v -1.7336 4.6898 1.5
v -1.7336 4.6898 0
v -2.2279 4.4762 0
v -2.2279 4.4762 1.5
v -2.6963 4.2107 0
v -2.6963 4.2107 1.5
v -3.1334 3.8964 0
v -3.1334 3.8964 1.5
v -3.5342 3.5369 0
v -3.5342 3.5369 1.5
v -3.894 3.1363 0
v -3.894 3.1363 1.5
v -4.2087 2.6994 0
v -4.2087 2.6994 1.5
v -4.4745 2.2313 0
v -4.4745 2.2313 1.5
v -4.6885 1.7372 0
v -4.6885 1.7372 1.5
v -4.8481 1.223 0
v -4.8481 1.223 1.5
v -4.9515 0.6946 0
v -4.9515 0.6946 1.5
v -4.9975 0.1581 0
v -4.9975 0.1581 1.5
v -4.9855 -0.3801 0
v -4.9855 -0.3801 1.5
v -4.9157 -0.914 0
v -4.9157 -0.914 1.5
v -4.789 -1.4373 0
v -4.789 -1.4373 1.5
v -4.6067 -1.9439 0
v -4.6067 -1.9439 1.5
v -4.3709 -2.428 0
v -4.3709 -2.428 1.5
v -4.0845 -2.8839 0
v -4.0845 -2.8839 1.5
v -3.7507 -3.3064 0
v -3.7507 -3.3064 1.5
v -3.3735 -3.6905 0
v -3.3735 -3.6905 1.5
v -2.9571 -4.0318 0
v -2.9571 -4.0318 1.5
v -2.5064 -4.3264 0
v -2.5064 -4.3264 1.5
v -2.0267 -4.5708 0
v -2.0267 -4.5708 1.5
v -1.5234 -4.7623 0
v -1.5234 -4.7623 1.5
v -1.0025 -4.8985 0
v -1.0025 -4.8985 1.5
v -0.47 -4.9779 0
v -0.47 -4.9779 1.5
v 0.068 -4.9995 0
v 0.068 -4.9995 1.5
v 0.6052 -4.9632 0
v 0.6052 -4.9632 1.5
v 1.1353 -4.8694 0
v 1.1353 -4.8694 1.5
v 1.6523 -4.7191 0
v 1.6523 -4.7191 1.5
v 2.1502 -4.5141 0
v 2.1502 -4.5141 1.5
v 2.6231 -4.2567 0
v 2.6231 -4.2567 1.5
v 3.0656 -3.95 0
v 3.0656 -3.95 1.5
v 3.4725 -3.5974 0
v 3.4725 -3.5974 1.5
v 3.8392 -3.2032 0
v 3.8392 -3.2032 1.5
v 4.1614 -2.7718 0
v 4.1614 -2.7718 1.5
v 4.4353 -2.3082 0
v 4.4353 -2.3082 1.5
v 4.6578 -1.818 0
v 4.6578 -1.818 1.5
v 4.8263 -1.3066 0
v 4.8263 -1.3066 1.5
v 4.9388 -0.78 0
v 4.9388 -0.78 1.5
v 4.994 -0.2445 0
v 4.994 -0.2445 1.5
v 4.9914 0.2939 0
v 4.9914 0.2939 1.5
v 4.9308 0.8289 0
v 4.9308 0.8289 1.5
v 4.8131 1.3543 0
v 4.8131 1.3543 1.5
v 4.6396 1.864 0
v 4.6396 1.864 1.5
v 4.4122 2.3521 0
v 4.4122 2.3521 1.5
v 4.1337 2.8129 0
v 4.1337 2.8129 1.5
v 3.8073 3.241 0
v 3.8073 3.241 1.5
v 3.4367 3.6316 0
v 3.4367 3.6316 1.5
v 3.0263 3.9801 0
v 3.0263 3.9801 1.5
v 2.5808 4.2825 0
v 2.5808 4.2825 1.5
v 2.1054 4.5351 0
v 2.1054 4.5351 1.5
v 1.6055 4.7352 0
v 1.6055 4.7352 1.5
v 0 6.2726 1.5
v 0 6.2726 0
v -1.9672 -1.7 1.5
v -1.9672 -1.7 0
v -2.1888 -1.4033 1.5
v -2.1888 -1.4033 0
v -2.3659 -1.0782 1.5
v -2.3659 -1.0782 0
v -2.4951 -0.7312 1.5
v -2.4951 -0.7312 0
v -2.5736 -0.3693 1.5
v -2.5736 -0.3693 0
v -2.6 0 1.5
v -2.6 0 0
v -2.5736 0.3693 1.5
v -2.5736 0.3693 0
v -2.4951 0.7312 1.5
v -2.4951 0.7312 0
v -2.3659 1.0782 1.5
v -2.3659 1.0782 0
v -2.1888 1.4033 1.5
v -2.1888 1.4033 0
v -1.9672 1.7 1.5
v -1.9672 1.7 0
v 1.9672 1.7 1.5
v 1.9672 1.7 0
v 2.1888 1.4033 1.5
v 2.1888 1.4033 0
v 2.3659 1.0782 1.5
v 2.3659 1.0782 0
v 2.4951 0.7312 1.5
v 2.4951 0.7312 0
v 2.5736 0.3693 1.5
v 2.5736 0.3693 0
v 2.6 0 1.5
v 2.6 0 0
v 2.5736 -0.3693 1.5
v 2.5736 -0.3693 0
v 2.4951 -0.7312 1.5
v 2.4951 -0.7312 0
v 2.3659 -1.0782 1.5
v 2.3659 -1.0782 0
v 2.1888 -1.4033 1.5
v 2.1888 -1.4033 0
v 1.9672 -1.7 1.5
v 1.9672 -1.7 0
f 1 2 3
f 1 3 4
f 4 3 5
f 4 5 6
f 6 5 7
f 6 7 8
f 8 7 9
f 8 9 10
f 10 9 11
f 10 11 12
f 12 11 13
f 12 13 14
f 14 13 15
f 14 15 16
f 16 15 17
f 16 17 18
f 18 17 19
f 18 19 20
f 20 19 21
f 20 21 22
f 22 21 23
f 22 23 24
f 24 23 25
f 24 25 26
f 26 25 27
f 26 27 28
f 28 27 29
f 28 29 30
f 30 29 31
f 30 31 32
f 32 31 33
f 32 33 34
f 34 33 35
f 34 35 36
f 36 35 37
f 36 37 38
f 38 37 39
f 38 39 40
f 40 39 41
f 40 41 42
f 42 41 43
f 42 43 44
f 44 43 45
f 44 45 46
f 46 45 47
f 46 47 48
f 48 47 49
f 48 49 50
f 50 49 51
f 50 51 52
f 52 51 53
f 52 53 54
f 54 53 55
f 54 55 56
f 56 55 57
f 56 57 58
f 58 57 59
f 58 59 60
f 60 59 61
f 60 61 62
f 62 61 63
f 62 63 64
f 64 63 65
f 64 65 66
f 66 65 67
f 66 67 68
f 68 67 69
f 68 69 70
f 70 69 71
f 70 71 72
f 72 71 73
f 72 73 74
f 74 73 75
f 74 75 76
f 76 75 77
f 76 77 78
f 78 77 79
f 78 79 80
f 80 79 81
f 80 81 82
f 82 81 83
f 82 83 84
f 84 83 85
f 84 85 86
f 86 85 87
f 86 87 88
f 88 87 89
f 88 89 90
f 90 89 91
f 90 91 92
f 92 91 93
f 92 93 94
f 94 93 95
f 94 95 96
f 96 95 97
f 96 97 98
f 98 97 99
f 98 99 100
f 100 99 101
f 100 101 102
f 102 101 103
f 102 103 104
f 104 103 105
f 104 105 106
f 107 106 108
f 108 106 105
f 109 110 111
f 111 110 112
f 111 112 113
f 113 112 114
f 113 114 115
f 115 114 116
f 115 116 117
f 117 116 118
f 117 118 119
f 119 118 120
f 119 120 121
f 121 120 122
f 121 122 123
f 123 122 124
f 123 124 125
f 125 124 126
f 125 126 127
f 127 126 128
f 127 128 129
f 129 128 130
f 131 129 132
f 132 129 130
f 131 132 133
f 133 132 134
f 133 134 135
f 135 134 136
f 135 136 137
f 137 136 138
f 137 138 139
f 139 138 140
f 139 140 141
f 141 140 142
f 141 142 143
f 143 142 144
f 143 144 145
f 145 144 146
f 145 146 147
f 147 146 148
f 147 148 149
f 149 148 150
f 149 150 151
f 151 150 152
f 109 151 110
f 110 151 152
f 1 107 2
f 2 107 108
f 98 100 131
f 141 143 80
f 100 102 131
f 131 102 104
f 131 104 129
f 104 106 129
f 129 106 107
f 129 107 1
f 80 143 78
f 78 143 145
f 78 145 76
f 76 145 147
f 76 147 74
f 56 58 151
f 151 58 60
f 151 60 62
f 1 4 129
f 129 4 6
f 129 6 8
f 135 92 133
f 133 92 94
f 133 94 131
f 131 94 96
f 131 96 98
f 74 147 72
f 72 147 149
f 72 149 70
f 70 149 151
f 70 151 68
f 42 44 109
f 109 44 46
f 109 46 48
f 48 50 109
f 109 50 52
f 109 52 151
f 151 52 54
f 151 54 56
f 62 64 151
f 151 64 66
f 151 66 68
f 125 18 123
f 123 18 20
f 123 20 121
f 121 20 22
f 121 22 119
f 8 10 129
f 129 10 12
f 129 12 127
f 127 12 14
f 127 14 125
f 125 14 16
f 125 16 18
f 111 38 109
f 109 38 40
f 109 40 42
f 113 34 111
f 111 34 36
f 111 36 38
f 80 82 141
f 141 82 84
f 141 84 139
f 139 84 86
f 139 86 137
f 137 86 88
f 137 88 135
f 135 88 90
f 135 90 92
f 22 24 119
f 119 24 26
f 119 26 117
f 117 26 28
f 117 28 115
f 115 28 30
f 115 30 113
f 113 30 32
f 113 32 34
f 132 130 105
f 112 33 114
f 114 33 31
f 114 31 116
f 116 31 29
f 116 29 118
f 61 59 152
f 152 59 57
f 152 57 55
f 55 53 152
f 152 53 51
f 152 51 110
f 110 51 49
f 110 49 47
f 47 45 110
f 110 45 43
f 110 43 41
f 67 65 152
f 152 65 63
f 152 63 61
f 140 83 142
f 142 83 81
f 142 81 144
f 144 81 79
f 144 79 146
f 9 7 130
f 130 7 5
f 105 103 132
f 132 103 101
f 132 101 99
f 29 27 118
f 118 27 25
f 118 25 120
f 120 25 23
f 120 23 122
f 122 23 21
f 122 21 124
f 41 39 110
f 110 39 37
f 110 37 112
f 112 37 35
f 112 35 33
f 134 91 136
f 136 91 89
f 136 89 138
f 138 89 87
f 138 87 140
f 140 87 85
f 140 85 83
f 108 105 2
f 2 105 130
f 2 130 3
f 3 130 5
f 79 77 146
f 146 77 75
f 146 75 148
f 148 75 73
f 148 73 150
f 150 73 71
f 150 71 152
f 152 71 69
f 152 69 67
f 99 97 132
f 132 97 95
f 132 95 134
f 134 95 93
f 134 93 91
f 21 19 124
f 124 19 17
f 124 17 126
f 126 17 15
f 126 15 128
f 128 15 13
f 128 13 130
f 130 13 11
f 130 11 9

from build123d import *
from build123d.topology import SkipClean

# Parameters (mm, degrees)
SKETCH1_R           = 5
SKETCH1_R_2         = 2.6
BOSS_EXTRUDE1_DEPTH = 1.5


with BuildPart() as part:
    # Sketch1 → Boss-Extrude1 (new body)
    # profile 1 of 6: a face of its own
    with SkipClean():  # the faces are left unmerged after this step: merging them gives an invalid solid
        with BuildSketch(Plane.XY):
            Circle(SKETCH1_R)
            Circle(SKETCH1_R_2, mode=Mode.SUBTRACT)
        # profile 2 of 6: a face of its own
        with BuildSketch(Plane.XY):
            with BuildLine():
                Line((-1.967231557, 1.7), (-3.027185929, 1.7))
                Line((-3.027185929, 1.7), (-3.027185929, -1.7))
                Line((-3.027185929, -1.7), (-1.967231557, -1.7))
                ThreePointArc((-1.967231557, -1.7), (-2.6, 0), (-1.967231557, 1.7))
            make_face()
        # profile 3 of 6: a face of its own
        with BuildSketch(Plane.XY):
            with BuildLine():
                ThreePointArc((1.967231557, 1.7), (0, 2.6), (-1.967231557, 1.7))
                Line((-1.967231557, 1.7), (1.967231557, 1.7))
            make_face()
        # profile 4 of 6: a face of its own
        with BuildSketch(Plane.XY):
            with BuildLine():
                Line((3.027185929, 1.7), (1.967231557, 1.7))
                ThreePointArc((1.967231557, 1.7), (2.436678277, 0.906972423), (2.6, 0))
                ThreePointArc((2.6, 0), (2.436678277, -0.906972423), (1.967231557, -1.7))
                Line((1.967231557, -1.7), (3.027185929, -1.7))
                Line((3.027185929, -1.7), (3.027185929, 1.7))
            make_face()
        # profile 5 of 6: a face of its own
        with BuildSketch(Plane.XY):
            with BuildLine():
                Line((1.967231557, -1.7), (-1.967231557, -1.7))
                ThreePointArc((-1.967231557, -1.7), (0, -2.6), (1.967231557, -1.7))
            make_face()
        # profile 6 of 6: a face of its own
        with BuildSketch(Plane.XY):
            with BuildLine():
                Line((0, 6.272587449), (-1.733646509, 4.6898262))
                ThreePointArc((-1.733646509, 4.6898262), (-0.067970608, 4.999537978), (1.6055094, 4.735223286))
                Line((1.6055094, 4.735223286), (0, 6.272587449))
            make_face()
        extrude(amount=BOSS_EXTRUDE1_DEPTH)


solid = part.part
